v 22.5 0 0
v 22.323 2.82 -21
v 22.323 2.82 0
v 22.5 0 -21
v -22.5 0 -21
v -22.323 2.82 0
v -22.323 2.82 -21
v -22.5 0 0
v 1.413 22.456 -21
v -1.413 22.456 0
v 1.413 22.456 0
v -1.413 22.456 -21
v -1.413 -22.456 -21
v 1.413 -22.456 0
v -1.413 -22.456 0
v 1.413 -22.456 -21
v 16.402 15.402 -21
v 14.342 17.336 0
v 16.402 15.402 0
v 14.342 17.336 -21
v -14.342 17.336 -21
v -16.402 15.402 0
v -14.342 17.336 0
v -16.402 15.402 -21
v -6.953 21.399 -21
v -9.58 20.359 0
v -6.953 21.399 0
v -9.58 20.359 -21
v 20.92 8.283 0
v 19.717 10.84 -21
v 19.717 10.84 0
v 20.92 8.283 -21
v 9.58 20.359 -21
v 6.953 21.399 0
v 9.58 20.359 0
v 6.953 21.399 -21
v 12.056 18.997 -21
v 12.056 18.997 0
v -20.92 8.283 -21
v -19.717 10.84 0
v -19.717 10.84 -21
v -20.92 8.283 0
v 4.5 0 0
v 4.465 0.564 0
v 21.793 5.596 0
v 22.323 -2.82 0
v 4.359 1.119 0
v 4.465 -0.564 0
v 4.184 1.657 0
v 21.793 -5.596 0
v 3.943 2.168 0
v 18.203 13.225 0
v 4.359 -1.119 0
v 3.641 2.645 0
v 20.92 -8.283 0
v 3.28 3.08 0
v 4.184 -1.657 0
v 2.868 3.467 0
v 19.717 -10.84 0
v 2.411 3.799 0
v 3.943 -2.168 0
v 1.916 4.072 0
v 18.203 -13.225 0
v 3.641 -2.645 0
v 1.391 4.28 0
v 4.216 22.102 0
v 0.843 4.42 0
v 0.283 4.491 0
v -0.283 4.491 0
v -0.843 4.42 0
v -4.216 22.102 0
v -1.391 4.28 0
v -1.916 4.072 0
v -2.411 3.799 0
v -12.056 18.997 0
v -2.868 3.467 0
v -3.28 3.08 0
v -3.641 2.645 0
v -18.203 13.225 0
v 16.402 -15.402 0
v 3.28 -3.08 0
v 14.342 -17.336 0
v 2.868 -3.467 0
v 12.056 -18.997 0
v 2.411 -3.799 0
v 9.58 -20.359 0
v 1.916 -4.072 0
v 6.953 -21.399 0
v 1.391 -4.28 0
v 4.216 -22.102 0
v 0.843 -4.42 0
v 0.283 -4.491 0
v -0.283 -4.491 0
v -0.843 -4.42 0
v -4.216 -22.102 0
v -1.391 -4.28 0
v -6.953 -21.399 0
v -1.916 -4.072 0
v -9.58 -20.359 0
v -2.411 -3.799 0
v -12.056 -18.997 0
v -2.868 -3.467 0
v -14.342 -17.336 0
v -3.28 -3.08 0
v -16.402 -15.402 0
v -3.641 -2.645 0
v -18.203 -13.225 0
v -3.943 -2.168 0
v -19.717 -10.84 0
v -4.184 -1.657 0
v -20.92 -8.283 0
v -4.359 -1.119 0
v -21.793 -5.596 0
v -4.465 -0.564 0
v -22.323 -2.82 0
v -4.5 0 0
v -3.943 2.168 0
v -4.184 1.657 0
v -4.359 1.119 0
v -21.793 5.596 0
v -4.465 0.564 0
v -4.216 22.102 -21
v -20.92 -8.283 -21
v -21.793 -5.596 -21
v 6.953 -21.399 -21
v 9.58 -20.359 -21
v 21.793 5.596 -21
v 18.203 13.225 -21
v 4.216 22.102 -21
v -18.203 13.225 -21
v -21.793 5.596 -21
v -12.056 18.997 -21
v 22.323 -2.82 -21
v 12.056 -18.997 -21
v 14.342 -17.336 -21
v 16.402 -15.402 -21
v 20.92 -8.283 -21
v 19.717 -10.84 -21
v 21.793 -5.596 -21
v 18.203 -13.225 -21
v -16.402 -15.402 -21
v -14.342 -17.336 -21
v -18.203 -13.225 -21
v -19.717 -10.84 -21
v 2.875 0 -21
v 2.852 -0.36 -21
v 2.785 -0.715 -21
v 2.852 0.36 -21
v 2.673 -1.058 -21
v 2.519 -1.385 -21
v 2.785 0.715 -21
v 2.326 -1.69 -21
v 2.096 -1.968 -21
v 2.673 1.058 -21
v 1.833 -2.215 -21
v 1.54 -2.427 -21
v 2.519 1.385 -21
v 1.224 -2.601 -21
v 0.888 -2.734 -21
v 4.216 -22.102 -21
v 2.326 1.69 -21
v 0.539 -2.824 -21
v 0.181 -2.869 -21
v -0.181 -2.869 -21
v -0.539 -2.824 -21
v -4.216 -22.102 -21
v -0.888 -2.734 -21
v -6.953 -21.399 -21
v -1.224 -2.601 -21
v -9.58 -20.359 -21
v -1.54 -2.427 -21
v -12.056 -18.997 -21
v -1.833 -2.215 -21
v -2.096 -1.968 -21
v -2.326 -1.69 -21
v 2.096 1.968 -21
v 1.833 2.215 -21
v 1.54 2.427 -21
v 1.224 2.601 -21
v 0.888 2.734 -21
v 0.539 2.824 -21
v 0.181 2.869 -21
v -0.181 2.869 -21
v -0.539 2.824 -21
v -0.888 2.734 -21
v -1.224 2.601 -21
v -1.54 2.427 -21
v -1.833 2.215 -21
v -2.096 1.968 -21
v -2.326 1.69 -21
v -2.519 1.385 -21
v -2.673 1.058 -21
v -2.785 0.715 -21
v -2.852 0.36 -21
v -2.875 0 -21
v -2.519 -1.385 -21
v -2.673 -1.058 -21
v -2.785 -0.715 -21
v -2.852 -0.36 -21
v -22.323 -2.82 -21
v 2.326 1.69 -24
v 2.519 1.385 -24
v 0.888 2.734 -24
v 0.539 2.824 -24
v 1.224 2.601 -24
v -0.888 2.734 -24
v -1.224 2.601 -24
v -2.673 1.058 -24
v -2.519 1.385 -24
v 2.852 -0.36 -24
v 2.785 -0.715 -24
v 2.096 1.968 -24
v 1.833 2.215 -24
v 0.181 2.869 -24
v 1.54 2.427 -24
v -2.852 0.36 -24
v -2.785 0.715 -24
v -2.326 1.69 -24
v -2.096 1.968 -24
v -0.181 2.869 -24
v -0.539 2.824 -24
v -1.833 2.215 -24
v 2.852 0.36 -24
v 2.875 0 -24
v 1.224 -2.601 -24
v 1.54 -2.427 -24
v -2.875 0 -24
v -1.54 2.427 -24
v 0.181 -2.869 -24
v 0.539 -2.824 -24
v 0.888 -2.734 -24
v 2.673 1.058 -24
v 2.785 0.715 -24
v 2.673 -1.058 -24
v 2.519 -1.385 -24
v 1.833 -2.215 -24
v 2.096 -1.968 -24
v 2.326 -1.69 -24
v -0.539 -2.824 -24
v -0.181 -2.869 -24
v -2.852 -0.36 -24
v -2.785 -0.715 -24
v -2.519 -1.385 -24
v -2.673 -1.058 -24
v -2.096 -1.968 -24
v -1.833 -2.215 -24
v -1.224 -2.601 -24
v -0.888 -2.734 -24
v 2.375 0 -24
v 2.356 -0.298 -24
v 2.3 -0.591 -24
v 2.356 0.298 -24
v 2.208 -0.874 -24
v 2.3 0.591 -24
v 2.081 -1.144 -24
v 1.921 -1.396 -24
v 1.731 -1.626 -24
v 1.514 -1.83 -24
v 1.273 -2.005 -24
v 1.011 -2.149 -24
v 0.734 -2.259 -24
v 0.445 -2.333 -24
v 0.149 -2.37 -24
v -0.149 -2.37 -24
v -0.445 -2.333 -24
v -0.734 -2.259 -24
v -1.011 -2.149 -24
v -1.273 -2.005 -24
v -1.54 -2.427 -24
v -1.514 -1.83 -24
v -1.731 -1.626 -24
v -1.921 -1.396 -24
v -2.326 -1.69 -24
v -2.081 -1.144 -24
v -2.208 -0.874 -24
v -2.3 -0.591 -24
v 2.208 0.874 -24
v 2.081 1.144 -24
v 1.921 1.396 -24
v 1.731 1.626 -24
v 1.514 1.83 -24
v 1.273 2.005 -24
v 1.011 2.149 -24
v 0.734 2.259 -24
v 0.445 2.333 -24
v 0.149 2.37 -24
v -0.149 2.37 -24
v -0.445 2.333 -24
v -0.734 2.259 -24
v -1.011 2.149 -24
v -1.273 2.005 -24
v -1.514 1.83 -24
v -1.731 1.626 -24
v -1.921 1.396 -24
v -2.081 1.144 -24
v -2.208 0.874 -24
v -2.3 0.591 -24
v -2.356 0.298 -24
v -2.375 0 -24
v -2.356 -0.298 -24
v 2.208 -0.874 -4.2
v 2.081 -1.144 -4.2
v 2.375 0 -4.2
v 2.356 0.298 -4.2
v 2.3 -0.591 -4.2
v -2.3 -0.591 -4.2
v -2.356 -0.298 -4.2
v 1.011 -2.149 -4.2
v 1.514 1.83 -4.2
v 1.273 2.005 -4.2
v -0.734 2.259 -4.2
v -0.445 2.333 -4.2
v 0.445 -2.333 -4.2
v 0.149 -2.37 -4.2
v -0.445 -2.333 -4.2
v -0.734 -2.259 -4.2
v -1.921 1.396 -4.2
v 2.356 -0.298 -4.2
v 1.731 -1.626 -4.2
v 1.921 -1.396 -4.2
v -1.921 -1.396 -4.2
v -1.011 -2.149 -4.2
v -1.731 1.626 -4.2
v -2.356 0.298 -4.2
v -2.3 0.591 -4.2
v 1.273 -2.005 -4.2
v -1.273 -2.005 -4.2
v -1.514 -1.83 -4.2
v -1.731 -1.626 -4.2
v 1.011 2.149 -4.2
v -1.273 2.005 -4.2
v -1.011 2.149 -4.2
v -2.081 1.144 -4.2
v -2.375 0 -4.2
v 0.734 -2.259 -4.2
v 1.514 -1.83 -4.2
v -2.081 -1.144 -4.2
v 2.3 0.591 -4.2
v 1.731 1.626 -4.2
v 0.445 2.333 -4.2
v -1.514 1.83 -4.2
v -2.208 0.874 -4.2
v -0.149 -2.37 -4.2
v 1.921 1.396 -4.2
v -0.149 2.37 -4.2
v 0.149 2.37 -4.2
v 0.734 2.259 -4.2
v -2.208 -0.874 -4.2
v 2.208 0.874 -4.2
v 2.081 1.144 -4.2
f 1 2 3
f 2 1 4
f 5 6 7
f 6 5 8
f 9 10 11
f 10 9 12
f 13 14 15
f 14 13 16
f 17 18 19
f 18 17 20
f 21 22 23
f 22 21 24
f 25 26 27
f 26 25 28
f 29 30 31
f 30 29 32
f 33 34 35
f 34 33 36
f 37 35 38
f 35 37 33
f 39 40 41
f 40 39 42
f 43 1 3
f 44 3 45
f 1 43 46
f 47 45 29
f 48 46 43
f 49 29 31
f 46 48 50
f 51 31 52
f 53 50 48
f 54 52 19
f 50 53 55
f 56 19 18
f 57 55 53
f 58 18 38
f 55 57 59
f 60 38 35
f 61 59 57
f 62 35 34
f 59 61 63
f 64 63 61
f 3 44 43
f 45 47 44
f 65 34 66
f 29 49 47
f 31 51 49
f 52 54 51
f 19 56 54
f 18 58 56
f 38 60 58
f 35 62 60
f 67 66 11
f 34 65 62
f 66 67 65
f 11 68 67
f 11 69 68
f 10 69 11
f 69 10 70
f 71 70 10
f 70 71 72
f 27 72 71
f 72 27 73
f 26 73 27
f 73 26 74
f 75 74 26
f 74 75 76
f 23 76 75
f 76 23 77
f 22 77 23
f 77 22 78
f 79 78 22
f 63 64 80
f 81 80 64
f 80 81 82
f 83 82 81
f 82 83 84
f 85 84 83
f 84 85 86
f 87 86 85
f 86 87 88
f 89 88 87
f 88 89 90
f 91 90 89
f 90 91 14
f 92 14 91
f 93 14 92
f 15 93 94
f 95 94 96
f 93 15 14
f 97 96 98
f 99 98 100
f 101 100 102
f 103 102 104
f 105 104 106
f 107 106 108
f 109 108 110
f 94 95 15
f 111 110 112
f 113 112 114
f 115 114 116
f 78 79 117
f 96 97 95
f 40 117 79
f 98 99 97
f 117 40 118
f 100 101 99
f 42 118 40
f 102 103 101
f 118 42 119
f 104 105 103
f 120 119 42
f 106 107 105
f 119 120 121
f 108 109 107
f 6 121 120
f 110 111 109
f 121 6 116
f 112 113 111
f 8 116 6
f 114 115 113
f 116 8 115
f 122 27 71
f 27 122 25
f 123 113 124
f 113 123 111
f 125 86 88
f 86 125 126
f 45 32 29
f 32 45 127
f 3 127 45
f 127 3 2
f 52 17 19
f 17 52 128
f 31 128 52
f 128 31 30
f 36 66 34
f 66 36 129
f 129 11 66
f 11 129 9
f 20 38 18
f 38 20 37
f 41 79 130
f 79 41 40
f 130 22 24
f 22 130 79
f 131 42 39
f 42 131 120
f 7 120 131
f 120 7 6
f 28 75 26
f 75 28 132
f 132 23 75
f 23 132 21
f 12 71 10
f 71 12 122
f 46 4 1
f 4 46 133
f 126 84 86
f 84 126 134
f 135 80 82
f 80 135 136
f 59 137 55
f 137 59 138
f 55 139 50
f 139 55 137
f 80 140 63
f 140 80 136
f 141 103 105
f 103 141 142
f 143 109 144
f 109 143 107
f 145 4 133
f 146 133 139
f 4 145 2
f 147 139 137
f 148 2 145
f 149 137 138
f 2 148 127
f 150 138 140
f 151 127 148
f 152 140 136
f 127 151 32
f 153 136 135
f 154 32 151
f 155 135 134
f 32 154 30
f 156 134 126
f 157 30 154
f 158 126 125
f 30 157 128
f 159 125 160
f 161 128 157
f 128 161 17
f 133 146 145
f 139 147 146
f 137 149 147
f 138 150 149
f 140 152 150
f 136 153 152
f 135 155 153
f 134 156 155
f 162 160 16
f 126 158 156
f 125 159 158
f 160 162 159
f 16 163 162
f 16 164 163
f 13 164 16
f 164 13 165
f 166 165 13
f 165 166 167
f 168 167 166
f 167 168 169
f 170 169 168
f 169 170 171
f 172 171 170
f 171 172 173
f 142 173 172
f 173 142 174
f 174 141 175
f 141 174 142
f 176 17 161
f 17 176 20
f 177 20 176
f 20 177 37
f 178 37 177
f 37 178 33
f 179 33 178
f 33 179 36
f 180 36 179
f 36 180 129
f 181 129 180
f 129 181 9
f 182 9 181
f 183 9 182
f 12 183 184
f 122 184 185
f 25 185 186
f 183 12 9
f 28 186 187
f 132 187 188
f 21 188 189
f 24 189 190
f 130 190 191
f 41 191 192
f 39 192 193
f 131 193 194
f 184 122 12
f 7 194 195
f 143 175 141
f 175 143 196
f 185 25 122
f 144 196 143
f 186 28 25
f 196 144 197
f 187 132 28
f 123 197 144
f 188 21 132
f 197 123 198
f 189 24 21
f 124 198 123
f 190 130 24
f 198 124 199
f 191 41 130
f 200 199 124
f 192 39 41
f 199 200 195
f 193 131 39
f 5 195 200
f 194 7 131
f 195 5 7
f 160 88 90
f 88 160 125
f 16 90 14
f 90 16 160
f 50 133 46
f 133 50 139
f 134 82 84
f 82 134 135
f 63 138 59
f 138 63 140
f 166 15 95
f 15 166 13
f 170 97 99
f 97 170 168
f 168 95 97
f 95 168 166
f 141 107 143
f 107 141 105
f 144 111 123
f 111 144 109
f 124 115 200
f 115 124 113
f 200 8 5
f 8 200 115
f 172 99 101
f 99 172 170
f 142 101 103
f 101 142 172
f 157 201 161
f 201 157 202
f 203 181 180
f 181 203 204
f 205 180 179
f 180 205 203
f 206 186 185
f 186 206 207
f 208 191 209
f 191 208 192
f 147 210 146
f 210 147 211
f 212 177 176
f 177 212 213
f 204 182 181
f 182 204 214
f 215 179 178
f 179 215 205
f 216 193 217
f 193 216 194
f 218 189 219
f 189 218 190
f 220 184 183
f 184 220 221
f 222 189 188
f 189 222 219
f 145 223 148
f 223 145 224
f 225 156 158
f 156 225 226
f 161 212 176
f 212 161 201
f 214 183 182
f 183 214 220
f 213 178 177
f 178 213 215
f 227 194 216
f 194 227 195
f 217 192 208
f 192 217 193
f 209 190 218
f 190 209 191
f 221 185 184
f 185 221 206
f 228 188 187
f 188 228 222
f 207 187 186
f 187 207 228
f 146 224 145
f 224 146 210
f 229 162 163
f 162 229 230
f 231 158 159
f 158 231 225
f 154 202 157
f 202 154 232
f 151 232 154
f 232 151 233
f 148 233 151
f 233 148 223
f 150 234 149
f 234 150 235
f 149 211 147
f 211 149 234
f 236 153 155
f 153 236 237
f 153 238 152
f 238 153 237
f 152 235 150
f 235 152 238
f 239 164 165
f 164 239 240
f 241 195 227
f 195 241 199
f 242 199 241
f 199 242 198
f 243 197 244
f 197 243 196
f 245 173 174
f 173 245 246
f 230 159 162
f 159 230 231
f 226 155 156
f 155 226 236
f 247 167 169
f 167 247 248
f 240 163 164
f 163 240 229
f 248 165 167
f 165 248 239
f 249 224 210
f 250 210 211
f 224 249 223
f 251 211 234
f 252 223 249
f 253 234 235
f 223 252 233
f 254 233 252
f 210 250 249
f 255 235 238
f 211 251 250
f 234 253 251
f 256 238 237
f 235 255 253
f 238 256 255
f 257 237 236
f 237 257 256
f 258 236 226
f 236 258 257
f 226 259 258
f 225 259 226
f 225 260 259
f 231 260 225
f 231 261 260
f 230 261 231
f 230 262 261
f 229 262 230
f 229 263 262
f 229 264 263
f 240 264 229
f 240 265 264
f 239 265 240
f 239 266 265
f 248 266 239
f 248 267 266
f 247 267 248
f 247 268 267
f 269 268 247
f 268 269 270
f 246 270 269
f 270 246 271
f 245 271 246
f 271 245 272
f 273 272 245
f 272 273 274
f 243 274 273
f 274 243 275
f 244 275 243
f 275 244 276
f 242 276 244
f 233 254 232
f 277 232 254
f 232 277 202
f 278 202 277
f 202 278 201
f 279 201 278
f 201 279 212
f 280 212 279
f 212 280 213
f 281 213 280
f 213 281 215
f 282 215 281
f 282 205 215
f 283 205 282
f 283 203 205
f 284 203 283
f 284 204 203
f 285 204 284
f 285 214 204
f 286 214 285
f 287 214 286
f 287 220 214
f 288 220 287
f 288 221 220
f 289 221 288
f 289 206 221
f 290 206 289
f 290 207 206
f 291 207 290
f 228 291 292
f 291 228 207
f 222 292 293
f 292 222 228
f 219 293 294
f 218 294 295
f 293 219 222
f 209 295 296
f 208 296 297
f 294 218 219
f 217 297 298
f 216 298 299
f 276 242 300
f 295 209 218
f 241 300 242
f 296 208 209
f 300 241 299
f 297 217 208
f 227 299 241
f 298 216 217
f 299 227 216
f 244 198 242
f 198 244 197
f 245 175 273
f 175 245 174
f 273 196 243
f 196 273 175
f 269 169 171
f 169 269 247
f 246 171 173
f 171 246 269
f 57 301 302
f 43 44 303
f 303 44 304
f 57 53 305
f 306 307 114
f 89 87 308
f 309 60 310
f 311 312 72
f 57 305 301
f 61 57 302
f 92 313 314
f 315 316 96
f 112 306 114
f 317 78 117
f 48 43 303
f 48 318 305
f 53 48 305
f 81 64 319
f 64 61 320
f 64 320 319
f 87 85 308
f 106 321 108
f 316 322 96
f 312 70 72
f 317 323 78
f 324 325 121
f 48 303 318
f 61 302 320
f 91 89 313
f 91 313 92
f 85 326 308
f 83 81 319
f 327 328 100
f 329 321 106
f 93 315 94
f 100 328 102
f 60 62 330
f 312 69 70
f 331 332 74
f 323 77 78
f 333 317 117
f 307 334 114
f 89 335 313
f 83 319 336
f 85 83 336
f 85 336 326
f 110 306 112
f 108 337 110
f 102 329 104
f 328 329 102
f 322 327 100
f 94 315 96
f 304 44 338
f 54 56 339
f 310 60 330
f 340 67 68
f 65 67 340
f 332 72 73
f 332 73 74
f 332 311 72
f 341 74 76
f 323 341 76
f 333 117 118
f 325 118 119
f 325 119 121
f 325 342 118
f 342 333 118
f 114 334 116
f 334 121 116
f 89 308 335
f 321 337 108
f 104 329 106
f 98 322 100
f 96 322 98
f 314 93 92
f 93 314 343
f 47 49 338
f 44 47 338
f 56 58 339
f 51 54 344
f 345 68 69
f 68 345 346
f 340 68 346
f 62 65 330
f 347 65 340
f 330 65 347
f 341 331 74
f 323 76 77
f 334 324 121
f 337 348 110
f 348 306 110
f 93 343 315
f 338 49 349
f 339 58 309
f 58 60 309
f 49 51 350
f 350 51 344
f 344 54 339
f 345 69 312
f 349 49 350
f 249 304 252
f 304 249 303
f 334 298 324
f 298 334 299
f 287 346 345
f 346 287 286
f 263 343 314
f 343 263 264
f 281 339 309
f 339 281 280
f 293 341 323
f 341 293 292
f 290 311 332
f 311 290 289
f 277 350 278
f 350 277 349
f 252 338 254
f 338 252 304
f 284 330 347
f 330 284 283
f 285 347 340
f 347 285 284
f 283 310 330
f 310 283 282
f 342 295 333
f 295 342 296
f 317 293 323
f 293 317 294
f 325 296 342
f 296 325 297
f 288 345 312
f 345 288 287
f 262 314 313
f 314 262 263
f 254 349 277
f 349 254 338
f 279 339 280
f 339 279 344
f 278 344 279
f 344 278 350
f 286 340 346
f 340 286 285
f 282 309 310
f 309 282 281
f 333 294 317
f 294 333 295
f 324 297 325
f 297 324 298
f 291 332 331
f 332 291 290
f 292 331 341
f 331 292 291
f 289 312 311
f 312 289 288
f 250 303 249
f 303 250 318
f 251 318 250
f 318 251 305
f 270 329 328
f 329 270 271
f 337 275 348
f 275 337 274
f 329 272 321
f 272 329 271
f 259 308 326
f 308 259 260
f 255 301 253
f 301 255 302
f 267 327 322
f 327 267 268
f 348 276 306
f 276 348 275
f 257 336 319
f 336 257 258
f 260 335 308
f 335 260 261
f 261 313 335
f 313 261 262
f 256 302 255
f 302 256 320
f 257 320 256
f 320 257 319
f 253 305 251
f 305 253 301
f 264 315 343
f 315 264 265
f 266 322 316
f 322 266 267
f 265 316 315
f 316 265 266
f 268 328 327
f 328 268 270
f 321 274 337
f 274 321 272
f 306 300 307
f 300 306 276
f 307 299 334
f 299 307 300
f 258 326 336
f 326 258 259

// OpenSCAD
$fn = 50;


difference() {
	union() {
		translate(v = [0, 0, -21.0000000000]) {
			cylinder(h = 21, r = 22.5000000000);
		}
		#translate(v = [0, 0, -24.0000000000]) {
			cylinder(h = 24, r = 2.8750000000);
		}
	}
	union() {
		translate(v = [0, 0, 0]) {
			rotate(a = [0, 0, 0]) {
				difference() {
					union() {
						translate(v = [0, 0, -24.0000000000]) {
							cylinder(h = 24, r = 2.2500000000);
						}
						translate(v = [0, 0, -4.2000000000]) {
							cylinder(h = 4.2000000000, r1 = 2.3750000000, r2 = 4.5000000000);
						}
						translate(v = [0, 0, -24.0000000000]) {
							cylinder(h = 24, r = 2.3750000000);
						}
						translate(v = [0, 0, -24.0000000000]) {
							cylinder(h = 24, r = 2.2500000000);
						}
					}
					union();
				}
			}
		}
	}
}
